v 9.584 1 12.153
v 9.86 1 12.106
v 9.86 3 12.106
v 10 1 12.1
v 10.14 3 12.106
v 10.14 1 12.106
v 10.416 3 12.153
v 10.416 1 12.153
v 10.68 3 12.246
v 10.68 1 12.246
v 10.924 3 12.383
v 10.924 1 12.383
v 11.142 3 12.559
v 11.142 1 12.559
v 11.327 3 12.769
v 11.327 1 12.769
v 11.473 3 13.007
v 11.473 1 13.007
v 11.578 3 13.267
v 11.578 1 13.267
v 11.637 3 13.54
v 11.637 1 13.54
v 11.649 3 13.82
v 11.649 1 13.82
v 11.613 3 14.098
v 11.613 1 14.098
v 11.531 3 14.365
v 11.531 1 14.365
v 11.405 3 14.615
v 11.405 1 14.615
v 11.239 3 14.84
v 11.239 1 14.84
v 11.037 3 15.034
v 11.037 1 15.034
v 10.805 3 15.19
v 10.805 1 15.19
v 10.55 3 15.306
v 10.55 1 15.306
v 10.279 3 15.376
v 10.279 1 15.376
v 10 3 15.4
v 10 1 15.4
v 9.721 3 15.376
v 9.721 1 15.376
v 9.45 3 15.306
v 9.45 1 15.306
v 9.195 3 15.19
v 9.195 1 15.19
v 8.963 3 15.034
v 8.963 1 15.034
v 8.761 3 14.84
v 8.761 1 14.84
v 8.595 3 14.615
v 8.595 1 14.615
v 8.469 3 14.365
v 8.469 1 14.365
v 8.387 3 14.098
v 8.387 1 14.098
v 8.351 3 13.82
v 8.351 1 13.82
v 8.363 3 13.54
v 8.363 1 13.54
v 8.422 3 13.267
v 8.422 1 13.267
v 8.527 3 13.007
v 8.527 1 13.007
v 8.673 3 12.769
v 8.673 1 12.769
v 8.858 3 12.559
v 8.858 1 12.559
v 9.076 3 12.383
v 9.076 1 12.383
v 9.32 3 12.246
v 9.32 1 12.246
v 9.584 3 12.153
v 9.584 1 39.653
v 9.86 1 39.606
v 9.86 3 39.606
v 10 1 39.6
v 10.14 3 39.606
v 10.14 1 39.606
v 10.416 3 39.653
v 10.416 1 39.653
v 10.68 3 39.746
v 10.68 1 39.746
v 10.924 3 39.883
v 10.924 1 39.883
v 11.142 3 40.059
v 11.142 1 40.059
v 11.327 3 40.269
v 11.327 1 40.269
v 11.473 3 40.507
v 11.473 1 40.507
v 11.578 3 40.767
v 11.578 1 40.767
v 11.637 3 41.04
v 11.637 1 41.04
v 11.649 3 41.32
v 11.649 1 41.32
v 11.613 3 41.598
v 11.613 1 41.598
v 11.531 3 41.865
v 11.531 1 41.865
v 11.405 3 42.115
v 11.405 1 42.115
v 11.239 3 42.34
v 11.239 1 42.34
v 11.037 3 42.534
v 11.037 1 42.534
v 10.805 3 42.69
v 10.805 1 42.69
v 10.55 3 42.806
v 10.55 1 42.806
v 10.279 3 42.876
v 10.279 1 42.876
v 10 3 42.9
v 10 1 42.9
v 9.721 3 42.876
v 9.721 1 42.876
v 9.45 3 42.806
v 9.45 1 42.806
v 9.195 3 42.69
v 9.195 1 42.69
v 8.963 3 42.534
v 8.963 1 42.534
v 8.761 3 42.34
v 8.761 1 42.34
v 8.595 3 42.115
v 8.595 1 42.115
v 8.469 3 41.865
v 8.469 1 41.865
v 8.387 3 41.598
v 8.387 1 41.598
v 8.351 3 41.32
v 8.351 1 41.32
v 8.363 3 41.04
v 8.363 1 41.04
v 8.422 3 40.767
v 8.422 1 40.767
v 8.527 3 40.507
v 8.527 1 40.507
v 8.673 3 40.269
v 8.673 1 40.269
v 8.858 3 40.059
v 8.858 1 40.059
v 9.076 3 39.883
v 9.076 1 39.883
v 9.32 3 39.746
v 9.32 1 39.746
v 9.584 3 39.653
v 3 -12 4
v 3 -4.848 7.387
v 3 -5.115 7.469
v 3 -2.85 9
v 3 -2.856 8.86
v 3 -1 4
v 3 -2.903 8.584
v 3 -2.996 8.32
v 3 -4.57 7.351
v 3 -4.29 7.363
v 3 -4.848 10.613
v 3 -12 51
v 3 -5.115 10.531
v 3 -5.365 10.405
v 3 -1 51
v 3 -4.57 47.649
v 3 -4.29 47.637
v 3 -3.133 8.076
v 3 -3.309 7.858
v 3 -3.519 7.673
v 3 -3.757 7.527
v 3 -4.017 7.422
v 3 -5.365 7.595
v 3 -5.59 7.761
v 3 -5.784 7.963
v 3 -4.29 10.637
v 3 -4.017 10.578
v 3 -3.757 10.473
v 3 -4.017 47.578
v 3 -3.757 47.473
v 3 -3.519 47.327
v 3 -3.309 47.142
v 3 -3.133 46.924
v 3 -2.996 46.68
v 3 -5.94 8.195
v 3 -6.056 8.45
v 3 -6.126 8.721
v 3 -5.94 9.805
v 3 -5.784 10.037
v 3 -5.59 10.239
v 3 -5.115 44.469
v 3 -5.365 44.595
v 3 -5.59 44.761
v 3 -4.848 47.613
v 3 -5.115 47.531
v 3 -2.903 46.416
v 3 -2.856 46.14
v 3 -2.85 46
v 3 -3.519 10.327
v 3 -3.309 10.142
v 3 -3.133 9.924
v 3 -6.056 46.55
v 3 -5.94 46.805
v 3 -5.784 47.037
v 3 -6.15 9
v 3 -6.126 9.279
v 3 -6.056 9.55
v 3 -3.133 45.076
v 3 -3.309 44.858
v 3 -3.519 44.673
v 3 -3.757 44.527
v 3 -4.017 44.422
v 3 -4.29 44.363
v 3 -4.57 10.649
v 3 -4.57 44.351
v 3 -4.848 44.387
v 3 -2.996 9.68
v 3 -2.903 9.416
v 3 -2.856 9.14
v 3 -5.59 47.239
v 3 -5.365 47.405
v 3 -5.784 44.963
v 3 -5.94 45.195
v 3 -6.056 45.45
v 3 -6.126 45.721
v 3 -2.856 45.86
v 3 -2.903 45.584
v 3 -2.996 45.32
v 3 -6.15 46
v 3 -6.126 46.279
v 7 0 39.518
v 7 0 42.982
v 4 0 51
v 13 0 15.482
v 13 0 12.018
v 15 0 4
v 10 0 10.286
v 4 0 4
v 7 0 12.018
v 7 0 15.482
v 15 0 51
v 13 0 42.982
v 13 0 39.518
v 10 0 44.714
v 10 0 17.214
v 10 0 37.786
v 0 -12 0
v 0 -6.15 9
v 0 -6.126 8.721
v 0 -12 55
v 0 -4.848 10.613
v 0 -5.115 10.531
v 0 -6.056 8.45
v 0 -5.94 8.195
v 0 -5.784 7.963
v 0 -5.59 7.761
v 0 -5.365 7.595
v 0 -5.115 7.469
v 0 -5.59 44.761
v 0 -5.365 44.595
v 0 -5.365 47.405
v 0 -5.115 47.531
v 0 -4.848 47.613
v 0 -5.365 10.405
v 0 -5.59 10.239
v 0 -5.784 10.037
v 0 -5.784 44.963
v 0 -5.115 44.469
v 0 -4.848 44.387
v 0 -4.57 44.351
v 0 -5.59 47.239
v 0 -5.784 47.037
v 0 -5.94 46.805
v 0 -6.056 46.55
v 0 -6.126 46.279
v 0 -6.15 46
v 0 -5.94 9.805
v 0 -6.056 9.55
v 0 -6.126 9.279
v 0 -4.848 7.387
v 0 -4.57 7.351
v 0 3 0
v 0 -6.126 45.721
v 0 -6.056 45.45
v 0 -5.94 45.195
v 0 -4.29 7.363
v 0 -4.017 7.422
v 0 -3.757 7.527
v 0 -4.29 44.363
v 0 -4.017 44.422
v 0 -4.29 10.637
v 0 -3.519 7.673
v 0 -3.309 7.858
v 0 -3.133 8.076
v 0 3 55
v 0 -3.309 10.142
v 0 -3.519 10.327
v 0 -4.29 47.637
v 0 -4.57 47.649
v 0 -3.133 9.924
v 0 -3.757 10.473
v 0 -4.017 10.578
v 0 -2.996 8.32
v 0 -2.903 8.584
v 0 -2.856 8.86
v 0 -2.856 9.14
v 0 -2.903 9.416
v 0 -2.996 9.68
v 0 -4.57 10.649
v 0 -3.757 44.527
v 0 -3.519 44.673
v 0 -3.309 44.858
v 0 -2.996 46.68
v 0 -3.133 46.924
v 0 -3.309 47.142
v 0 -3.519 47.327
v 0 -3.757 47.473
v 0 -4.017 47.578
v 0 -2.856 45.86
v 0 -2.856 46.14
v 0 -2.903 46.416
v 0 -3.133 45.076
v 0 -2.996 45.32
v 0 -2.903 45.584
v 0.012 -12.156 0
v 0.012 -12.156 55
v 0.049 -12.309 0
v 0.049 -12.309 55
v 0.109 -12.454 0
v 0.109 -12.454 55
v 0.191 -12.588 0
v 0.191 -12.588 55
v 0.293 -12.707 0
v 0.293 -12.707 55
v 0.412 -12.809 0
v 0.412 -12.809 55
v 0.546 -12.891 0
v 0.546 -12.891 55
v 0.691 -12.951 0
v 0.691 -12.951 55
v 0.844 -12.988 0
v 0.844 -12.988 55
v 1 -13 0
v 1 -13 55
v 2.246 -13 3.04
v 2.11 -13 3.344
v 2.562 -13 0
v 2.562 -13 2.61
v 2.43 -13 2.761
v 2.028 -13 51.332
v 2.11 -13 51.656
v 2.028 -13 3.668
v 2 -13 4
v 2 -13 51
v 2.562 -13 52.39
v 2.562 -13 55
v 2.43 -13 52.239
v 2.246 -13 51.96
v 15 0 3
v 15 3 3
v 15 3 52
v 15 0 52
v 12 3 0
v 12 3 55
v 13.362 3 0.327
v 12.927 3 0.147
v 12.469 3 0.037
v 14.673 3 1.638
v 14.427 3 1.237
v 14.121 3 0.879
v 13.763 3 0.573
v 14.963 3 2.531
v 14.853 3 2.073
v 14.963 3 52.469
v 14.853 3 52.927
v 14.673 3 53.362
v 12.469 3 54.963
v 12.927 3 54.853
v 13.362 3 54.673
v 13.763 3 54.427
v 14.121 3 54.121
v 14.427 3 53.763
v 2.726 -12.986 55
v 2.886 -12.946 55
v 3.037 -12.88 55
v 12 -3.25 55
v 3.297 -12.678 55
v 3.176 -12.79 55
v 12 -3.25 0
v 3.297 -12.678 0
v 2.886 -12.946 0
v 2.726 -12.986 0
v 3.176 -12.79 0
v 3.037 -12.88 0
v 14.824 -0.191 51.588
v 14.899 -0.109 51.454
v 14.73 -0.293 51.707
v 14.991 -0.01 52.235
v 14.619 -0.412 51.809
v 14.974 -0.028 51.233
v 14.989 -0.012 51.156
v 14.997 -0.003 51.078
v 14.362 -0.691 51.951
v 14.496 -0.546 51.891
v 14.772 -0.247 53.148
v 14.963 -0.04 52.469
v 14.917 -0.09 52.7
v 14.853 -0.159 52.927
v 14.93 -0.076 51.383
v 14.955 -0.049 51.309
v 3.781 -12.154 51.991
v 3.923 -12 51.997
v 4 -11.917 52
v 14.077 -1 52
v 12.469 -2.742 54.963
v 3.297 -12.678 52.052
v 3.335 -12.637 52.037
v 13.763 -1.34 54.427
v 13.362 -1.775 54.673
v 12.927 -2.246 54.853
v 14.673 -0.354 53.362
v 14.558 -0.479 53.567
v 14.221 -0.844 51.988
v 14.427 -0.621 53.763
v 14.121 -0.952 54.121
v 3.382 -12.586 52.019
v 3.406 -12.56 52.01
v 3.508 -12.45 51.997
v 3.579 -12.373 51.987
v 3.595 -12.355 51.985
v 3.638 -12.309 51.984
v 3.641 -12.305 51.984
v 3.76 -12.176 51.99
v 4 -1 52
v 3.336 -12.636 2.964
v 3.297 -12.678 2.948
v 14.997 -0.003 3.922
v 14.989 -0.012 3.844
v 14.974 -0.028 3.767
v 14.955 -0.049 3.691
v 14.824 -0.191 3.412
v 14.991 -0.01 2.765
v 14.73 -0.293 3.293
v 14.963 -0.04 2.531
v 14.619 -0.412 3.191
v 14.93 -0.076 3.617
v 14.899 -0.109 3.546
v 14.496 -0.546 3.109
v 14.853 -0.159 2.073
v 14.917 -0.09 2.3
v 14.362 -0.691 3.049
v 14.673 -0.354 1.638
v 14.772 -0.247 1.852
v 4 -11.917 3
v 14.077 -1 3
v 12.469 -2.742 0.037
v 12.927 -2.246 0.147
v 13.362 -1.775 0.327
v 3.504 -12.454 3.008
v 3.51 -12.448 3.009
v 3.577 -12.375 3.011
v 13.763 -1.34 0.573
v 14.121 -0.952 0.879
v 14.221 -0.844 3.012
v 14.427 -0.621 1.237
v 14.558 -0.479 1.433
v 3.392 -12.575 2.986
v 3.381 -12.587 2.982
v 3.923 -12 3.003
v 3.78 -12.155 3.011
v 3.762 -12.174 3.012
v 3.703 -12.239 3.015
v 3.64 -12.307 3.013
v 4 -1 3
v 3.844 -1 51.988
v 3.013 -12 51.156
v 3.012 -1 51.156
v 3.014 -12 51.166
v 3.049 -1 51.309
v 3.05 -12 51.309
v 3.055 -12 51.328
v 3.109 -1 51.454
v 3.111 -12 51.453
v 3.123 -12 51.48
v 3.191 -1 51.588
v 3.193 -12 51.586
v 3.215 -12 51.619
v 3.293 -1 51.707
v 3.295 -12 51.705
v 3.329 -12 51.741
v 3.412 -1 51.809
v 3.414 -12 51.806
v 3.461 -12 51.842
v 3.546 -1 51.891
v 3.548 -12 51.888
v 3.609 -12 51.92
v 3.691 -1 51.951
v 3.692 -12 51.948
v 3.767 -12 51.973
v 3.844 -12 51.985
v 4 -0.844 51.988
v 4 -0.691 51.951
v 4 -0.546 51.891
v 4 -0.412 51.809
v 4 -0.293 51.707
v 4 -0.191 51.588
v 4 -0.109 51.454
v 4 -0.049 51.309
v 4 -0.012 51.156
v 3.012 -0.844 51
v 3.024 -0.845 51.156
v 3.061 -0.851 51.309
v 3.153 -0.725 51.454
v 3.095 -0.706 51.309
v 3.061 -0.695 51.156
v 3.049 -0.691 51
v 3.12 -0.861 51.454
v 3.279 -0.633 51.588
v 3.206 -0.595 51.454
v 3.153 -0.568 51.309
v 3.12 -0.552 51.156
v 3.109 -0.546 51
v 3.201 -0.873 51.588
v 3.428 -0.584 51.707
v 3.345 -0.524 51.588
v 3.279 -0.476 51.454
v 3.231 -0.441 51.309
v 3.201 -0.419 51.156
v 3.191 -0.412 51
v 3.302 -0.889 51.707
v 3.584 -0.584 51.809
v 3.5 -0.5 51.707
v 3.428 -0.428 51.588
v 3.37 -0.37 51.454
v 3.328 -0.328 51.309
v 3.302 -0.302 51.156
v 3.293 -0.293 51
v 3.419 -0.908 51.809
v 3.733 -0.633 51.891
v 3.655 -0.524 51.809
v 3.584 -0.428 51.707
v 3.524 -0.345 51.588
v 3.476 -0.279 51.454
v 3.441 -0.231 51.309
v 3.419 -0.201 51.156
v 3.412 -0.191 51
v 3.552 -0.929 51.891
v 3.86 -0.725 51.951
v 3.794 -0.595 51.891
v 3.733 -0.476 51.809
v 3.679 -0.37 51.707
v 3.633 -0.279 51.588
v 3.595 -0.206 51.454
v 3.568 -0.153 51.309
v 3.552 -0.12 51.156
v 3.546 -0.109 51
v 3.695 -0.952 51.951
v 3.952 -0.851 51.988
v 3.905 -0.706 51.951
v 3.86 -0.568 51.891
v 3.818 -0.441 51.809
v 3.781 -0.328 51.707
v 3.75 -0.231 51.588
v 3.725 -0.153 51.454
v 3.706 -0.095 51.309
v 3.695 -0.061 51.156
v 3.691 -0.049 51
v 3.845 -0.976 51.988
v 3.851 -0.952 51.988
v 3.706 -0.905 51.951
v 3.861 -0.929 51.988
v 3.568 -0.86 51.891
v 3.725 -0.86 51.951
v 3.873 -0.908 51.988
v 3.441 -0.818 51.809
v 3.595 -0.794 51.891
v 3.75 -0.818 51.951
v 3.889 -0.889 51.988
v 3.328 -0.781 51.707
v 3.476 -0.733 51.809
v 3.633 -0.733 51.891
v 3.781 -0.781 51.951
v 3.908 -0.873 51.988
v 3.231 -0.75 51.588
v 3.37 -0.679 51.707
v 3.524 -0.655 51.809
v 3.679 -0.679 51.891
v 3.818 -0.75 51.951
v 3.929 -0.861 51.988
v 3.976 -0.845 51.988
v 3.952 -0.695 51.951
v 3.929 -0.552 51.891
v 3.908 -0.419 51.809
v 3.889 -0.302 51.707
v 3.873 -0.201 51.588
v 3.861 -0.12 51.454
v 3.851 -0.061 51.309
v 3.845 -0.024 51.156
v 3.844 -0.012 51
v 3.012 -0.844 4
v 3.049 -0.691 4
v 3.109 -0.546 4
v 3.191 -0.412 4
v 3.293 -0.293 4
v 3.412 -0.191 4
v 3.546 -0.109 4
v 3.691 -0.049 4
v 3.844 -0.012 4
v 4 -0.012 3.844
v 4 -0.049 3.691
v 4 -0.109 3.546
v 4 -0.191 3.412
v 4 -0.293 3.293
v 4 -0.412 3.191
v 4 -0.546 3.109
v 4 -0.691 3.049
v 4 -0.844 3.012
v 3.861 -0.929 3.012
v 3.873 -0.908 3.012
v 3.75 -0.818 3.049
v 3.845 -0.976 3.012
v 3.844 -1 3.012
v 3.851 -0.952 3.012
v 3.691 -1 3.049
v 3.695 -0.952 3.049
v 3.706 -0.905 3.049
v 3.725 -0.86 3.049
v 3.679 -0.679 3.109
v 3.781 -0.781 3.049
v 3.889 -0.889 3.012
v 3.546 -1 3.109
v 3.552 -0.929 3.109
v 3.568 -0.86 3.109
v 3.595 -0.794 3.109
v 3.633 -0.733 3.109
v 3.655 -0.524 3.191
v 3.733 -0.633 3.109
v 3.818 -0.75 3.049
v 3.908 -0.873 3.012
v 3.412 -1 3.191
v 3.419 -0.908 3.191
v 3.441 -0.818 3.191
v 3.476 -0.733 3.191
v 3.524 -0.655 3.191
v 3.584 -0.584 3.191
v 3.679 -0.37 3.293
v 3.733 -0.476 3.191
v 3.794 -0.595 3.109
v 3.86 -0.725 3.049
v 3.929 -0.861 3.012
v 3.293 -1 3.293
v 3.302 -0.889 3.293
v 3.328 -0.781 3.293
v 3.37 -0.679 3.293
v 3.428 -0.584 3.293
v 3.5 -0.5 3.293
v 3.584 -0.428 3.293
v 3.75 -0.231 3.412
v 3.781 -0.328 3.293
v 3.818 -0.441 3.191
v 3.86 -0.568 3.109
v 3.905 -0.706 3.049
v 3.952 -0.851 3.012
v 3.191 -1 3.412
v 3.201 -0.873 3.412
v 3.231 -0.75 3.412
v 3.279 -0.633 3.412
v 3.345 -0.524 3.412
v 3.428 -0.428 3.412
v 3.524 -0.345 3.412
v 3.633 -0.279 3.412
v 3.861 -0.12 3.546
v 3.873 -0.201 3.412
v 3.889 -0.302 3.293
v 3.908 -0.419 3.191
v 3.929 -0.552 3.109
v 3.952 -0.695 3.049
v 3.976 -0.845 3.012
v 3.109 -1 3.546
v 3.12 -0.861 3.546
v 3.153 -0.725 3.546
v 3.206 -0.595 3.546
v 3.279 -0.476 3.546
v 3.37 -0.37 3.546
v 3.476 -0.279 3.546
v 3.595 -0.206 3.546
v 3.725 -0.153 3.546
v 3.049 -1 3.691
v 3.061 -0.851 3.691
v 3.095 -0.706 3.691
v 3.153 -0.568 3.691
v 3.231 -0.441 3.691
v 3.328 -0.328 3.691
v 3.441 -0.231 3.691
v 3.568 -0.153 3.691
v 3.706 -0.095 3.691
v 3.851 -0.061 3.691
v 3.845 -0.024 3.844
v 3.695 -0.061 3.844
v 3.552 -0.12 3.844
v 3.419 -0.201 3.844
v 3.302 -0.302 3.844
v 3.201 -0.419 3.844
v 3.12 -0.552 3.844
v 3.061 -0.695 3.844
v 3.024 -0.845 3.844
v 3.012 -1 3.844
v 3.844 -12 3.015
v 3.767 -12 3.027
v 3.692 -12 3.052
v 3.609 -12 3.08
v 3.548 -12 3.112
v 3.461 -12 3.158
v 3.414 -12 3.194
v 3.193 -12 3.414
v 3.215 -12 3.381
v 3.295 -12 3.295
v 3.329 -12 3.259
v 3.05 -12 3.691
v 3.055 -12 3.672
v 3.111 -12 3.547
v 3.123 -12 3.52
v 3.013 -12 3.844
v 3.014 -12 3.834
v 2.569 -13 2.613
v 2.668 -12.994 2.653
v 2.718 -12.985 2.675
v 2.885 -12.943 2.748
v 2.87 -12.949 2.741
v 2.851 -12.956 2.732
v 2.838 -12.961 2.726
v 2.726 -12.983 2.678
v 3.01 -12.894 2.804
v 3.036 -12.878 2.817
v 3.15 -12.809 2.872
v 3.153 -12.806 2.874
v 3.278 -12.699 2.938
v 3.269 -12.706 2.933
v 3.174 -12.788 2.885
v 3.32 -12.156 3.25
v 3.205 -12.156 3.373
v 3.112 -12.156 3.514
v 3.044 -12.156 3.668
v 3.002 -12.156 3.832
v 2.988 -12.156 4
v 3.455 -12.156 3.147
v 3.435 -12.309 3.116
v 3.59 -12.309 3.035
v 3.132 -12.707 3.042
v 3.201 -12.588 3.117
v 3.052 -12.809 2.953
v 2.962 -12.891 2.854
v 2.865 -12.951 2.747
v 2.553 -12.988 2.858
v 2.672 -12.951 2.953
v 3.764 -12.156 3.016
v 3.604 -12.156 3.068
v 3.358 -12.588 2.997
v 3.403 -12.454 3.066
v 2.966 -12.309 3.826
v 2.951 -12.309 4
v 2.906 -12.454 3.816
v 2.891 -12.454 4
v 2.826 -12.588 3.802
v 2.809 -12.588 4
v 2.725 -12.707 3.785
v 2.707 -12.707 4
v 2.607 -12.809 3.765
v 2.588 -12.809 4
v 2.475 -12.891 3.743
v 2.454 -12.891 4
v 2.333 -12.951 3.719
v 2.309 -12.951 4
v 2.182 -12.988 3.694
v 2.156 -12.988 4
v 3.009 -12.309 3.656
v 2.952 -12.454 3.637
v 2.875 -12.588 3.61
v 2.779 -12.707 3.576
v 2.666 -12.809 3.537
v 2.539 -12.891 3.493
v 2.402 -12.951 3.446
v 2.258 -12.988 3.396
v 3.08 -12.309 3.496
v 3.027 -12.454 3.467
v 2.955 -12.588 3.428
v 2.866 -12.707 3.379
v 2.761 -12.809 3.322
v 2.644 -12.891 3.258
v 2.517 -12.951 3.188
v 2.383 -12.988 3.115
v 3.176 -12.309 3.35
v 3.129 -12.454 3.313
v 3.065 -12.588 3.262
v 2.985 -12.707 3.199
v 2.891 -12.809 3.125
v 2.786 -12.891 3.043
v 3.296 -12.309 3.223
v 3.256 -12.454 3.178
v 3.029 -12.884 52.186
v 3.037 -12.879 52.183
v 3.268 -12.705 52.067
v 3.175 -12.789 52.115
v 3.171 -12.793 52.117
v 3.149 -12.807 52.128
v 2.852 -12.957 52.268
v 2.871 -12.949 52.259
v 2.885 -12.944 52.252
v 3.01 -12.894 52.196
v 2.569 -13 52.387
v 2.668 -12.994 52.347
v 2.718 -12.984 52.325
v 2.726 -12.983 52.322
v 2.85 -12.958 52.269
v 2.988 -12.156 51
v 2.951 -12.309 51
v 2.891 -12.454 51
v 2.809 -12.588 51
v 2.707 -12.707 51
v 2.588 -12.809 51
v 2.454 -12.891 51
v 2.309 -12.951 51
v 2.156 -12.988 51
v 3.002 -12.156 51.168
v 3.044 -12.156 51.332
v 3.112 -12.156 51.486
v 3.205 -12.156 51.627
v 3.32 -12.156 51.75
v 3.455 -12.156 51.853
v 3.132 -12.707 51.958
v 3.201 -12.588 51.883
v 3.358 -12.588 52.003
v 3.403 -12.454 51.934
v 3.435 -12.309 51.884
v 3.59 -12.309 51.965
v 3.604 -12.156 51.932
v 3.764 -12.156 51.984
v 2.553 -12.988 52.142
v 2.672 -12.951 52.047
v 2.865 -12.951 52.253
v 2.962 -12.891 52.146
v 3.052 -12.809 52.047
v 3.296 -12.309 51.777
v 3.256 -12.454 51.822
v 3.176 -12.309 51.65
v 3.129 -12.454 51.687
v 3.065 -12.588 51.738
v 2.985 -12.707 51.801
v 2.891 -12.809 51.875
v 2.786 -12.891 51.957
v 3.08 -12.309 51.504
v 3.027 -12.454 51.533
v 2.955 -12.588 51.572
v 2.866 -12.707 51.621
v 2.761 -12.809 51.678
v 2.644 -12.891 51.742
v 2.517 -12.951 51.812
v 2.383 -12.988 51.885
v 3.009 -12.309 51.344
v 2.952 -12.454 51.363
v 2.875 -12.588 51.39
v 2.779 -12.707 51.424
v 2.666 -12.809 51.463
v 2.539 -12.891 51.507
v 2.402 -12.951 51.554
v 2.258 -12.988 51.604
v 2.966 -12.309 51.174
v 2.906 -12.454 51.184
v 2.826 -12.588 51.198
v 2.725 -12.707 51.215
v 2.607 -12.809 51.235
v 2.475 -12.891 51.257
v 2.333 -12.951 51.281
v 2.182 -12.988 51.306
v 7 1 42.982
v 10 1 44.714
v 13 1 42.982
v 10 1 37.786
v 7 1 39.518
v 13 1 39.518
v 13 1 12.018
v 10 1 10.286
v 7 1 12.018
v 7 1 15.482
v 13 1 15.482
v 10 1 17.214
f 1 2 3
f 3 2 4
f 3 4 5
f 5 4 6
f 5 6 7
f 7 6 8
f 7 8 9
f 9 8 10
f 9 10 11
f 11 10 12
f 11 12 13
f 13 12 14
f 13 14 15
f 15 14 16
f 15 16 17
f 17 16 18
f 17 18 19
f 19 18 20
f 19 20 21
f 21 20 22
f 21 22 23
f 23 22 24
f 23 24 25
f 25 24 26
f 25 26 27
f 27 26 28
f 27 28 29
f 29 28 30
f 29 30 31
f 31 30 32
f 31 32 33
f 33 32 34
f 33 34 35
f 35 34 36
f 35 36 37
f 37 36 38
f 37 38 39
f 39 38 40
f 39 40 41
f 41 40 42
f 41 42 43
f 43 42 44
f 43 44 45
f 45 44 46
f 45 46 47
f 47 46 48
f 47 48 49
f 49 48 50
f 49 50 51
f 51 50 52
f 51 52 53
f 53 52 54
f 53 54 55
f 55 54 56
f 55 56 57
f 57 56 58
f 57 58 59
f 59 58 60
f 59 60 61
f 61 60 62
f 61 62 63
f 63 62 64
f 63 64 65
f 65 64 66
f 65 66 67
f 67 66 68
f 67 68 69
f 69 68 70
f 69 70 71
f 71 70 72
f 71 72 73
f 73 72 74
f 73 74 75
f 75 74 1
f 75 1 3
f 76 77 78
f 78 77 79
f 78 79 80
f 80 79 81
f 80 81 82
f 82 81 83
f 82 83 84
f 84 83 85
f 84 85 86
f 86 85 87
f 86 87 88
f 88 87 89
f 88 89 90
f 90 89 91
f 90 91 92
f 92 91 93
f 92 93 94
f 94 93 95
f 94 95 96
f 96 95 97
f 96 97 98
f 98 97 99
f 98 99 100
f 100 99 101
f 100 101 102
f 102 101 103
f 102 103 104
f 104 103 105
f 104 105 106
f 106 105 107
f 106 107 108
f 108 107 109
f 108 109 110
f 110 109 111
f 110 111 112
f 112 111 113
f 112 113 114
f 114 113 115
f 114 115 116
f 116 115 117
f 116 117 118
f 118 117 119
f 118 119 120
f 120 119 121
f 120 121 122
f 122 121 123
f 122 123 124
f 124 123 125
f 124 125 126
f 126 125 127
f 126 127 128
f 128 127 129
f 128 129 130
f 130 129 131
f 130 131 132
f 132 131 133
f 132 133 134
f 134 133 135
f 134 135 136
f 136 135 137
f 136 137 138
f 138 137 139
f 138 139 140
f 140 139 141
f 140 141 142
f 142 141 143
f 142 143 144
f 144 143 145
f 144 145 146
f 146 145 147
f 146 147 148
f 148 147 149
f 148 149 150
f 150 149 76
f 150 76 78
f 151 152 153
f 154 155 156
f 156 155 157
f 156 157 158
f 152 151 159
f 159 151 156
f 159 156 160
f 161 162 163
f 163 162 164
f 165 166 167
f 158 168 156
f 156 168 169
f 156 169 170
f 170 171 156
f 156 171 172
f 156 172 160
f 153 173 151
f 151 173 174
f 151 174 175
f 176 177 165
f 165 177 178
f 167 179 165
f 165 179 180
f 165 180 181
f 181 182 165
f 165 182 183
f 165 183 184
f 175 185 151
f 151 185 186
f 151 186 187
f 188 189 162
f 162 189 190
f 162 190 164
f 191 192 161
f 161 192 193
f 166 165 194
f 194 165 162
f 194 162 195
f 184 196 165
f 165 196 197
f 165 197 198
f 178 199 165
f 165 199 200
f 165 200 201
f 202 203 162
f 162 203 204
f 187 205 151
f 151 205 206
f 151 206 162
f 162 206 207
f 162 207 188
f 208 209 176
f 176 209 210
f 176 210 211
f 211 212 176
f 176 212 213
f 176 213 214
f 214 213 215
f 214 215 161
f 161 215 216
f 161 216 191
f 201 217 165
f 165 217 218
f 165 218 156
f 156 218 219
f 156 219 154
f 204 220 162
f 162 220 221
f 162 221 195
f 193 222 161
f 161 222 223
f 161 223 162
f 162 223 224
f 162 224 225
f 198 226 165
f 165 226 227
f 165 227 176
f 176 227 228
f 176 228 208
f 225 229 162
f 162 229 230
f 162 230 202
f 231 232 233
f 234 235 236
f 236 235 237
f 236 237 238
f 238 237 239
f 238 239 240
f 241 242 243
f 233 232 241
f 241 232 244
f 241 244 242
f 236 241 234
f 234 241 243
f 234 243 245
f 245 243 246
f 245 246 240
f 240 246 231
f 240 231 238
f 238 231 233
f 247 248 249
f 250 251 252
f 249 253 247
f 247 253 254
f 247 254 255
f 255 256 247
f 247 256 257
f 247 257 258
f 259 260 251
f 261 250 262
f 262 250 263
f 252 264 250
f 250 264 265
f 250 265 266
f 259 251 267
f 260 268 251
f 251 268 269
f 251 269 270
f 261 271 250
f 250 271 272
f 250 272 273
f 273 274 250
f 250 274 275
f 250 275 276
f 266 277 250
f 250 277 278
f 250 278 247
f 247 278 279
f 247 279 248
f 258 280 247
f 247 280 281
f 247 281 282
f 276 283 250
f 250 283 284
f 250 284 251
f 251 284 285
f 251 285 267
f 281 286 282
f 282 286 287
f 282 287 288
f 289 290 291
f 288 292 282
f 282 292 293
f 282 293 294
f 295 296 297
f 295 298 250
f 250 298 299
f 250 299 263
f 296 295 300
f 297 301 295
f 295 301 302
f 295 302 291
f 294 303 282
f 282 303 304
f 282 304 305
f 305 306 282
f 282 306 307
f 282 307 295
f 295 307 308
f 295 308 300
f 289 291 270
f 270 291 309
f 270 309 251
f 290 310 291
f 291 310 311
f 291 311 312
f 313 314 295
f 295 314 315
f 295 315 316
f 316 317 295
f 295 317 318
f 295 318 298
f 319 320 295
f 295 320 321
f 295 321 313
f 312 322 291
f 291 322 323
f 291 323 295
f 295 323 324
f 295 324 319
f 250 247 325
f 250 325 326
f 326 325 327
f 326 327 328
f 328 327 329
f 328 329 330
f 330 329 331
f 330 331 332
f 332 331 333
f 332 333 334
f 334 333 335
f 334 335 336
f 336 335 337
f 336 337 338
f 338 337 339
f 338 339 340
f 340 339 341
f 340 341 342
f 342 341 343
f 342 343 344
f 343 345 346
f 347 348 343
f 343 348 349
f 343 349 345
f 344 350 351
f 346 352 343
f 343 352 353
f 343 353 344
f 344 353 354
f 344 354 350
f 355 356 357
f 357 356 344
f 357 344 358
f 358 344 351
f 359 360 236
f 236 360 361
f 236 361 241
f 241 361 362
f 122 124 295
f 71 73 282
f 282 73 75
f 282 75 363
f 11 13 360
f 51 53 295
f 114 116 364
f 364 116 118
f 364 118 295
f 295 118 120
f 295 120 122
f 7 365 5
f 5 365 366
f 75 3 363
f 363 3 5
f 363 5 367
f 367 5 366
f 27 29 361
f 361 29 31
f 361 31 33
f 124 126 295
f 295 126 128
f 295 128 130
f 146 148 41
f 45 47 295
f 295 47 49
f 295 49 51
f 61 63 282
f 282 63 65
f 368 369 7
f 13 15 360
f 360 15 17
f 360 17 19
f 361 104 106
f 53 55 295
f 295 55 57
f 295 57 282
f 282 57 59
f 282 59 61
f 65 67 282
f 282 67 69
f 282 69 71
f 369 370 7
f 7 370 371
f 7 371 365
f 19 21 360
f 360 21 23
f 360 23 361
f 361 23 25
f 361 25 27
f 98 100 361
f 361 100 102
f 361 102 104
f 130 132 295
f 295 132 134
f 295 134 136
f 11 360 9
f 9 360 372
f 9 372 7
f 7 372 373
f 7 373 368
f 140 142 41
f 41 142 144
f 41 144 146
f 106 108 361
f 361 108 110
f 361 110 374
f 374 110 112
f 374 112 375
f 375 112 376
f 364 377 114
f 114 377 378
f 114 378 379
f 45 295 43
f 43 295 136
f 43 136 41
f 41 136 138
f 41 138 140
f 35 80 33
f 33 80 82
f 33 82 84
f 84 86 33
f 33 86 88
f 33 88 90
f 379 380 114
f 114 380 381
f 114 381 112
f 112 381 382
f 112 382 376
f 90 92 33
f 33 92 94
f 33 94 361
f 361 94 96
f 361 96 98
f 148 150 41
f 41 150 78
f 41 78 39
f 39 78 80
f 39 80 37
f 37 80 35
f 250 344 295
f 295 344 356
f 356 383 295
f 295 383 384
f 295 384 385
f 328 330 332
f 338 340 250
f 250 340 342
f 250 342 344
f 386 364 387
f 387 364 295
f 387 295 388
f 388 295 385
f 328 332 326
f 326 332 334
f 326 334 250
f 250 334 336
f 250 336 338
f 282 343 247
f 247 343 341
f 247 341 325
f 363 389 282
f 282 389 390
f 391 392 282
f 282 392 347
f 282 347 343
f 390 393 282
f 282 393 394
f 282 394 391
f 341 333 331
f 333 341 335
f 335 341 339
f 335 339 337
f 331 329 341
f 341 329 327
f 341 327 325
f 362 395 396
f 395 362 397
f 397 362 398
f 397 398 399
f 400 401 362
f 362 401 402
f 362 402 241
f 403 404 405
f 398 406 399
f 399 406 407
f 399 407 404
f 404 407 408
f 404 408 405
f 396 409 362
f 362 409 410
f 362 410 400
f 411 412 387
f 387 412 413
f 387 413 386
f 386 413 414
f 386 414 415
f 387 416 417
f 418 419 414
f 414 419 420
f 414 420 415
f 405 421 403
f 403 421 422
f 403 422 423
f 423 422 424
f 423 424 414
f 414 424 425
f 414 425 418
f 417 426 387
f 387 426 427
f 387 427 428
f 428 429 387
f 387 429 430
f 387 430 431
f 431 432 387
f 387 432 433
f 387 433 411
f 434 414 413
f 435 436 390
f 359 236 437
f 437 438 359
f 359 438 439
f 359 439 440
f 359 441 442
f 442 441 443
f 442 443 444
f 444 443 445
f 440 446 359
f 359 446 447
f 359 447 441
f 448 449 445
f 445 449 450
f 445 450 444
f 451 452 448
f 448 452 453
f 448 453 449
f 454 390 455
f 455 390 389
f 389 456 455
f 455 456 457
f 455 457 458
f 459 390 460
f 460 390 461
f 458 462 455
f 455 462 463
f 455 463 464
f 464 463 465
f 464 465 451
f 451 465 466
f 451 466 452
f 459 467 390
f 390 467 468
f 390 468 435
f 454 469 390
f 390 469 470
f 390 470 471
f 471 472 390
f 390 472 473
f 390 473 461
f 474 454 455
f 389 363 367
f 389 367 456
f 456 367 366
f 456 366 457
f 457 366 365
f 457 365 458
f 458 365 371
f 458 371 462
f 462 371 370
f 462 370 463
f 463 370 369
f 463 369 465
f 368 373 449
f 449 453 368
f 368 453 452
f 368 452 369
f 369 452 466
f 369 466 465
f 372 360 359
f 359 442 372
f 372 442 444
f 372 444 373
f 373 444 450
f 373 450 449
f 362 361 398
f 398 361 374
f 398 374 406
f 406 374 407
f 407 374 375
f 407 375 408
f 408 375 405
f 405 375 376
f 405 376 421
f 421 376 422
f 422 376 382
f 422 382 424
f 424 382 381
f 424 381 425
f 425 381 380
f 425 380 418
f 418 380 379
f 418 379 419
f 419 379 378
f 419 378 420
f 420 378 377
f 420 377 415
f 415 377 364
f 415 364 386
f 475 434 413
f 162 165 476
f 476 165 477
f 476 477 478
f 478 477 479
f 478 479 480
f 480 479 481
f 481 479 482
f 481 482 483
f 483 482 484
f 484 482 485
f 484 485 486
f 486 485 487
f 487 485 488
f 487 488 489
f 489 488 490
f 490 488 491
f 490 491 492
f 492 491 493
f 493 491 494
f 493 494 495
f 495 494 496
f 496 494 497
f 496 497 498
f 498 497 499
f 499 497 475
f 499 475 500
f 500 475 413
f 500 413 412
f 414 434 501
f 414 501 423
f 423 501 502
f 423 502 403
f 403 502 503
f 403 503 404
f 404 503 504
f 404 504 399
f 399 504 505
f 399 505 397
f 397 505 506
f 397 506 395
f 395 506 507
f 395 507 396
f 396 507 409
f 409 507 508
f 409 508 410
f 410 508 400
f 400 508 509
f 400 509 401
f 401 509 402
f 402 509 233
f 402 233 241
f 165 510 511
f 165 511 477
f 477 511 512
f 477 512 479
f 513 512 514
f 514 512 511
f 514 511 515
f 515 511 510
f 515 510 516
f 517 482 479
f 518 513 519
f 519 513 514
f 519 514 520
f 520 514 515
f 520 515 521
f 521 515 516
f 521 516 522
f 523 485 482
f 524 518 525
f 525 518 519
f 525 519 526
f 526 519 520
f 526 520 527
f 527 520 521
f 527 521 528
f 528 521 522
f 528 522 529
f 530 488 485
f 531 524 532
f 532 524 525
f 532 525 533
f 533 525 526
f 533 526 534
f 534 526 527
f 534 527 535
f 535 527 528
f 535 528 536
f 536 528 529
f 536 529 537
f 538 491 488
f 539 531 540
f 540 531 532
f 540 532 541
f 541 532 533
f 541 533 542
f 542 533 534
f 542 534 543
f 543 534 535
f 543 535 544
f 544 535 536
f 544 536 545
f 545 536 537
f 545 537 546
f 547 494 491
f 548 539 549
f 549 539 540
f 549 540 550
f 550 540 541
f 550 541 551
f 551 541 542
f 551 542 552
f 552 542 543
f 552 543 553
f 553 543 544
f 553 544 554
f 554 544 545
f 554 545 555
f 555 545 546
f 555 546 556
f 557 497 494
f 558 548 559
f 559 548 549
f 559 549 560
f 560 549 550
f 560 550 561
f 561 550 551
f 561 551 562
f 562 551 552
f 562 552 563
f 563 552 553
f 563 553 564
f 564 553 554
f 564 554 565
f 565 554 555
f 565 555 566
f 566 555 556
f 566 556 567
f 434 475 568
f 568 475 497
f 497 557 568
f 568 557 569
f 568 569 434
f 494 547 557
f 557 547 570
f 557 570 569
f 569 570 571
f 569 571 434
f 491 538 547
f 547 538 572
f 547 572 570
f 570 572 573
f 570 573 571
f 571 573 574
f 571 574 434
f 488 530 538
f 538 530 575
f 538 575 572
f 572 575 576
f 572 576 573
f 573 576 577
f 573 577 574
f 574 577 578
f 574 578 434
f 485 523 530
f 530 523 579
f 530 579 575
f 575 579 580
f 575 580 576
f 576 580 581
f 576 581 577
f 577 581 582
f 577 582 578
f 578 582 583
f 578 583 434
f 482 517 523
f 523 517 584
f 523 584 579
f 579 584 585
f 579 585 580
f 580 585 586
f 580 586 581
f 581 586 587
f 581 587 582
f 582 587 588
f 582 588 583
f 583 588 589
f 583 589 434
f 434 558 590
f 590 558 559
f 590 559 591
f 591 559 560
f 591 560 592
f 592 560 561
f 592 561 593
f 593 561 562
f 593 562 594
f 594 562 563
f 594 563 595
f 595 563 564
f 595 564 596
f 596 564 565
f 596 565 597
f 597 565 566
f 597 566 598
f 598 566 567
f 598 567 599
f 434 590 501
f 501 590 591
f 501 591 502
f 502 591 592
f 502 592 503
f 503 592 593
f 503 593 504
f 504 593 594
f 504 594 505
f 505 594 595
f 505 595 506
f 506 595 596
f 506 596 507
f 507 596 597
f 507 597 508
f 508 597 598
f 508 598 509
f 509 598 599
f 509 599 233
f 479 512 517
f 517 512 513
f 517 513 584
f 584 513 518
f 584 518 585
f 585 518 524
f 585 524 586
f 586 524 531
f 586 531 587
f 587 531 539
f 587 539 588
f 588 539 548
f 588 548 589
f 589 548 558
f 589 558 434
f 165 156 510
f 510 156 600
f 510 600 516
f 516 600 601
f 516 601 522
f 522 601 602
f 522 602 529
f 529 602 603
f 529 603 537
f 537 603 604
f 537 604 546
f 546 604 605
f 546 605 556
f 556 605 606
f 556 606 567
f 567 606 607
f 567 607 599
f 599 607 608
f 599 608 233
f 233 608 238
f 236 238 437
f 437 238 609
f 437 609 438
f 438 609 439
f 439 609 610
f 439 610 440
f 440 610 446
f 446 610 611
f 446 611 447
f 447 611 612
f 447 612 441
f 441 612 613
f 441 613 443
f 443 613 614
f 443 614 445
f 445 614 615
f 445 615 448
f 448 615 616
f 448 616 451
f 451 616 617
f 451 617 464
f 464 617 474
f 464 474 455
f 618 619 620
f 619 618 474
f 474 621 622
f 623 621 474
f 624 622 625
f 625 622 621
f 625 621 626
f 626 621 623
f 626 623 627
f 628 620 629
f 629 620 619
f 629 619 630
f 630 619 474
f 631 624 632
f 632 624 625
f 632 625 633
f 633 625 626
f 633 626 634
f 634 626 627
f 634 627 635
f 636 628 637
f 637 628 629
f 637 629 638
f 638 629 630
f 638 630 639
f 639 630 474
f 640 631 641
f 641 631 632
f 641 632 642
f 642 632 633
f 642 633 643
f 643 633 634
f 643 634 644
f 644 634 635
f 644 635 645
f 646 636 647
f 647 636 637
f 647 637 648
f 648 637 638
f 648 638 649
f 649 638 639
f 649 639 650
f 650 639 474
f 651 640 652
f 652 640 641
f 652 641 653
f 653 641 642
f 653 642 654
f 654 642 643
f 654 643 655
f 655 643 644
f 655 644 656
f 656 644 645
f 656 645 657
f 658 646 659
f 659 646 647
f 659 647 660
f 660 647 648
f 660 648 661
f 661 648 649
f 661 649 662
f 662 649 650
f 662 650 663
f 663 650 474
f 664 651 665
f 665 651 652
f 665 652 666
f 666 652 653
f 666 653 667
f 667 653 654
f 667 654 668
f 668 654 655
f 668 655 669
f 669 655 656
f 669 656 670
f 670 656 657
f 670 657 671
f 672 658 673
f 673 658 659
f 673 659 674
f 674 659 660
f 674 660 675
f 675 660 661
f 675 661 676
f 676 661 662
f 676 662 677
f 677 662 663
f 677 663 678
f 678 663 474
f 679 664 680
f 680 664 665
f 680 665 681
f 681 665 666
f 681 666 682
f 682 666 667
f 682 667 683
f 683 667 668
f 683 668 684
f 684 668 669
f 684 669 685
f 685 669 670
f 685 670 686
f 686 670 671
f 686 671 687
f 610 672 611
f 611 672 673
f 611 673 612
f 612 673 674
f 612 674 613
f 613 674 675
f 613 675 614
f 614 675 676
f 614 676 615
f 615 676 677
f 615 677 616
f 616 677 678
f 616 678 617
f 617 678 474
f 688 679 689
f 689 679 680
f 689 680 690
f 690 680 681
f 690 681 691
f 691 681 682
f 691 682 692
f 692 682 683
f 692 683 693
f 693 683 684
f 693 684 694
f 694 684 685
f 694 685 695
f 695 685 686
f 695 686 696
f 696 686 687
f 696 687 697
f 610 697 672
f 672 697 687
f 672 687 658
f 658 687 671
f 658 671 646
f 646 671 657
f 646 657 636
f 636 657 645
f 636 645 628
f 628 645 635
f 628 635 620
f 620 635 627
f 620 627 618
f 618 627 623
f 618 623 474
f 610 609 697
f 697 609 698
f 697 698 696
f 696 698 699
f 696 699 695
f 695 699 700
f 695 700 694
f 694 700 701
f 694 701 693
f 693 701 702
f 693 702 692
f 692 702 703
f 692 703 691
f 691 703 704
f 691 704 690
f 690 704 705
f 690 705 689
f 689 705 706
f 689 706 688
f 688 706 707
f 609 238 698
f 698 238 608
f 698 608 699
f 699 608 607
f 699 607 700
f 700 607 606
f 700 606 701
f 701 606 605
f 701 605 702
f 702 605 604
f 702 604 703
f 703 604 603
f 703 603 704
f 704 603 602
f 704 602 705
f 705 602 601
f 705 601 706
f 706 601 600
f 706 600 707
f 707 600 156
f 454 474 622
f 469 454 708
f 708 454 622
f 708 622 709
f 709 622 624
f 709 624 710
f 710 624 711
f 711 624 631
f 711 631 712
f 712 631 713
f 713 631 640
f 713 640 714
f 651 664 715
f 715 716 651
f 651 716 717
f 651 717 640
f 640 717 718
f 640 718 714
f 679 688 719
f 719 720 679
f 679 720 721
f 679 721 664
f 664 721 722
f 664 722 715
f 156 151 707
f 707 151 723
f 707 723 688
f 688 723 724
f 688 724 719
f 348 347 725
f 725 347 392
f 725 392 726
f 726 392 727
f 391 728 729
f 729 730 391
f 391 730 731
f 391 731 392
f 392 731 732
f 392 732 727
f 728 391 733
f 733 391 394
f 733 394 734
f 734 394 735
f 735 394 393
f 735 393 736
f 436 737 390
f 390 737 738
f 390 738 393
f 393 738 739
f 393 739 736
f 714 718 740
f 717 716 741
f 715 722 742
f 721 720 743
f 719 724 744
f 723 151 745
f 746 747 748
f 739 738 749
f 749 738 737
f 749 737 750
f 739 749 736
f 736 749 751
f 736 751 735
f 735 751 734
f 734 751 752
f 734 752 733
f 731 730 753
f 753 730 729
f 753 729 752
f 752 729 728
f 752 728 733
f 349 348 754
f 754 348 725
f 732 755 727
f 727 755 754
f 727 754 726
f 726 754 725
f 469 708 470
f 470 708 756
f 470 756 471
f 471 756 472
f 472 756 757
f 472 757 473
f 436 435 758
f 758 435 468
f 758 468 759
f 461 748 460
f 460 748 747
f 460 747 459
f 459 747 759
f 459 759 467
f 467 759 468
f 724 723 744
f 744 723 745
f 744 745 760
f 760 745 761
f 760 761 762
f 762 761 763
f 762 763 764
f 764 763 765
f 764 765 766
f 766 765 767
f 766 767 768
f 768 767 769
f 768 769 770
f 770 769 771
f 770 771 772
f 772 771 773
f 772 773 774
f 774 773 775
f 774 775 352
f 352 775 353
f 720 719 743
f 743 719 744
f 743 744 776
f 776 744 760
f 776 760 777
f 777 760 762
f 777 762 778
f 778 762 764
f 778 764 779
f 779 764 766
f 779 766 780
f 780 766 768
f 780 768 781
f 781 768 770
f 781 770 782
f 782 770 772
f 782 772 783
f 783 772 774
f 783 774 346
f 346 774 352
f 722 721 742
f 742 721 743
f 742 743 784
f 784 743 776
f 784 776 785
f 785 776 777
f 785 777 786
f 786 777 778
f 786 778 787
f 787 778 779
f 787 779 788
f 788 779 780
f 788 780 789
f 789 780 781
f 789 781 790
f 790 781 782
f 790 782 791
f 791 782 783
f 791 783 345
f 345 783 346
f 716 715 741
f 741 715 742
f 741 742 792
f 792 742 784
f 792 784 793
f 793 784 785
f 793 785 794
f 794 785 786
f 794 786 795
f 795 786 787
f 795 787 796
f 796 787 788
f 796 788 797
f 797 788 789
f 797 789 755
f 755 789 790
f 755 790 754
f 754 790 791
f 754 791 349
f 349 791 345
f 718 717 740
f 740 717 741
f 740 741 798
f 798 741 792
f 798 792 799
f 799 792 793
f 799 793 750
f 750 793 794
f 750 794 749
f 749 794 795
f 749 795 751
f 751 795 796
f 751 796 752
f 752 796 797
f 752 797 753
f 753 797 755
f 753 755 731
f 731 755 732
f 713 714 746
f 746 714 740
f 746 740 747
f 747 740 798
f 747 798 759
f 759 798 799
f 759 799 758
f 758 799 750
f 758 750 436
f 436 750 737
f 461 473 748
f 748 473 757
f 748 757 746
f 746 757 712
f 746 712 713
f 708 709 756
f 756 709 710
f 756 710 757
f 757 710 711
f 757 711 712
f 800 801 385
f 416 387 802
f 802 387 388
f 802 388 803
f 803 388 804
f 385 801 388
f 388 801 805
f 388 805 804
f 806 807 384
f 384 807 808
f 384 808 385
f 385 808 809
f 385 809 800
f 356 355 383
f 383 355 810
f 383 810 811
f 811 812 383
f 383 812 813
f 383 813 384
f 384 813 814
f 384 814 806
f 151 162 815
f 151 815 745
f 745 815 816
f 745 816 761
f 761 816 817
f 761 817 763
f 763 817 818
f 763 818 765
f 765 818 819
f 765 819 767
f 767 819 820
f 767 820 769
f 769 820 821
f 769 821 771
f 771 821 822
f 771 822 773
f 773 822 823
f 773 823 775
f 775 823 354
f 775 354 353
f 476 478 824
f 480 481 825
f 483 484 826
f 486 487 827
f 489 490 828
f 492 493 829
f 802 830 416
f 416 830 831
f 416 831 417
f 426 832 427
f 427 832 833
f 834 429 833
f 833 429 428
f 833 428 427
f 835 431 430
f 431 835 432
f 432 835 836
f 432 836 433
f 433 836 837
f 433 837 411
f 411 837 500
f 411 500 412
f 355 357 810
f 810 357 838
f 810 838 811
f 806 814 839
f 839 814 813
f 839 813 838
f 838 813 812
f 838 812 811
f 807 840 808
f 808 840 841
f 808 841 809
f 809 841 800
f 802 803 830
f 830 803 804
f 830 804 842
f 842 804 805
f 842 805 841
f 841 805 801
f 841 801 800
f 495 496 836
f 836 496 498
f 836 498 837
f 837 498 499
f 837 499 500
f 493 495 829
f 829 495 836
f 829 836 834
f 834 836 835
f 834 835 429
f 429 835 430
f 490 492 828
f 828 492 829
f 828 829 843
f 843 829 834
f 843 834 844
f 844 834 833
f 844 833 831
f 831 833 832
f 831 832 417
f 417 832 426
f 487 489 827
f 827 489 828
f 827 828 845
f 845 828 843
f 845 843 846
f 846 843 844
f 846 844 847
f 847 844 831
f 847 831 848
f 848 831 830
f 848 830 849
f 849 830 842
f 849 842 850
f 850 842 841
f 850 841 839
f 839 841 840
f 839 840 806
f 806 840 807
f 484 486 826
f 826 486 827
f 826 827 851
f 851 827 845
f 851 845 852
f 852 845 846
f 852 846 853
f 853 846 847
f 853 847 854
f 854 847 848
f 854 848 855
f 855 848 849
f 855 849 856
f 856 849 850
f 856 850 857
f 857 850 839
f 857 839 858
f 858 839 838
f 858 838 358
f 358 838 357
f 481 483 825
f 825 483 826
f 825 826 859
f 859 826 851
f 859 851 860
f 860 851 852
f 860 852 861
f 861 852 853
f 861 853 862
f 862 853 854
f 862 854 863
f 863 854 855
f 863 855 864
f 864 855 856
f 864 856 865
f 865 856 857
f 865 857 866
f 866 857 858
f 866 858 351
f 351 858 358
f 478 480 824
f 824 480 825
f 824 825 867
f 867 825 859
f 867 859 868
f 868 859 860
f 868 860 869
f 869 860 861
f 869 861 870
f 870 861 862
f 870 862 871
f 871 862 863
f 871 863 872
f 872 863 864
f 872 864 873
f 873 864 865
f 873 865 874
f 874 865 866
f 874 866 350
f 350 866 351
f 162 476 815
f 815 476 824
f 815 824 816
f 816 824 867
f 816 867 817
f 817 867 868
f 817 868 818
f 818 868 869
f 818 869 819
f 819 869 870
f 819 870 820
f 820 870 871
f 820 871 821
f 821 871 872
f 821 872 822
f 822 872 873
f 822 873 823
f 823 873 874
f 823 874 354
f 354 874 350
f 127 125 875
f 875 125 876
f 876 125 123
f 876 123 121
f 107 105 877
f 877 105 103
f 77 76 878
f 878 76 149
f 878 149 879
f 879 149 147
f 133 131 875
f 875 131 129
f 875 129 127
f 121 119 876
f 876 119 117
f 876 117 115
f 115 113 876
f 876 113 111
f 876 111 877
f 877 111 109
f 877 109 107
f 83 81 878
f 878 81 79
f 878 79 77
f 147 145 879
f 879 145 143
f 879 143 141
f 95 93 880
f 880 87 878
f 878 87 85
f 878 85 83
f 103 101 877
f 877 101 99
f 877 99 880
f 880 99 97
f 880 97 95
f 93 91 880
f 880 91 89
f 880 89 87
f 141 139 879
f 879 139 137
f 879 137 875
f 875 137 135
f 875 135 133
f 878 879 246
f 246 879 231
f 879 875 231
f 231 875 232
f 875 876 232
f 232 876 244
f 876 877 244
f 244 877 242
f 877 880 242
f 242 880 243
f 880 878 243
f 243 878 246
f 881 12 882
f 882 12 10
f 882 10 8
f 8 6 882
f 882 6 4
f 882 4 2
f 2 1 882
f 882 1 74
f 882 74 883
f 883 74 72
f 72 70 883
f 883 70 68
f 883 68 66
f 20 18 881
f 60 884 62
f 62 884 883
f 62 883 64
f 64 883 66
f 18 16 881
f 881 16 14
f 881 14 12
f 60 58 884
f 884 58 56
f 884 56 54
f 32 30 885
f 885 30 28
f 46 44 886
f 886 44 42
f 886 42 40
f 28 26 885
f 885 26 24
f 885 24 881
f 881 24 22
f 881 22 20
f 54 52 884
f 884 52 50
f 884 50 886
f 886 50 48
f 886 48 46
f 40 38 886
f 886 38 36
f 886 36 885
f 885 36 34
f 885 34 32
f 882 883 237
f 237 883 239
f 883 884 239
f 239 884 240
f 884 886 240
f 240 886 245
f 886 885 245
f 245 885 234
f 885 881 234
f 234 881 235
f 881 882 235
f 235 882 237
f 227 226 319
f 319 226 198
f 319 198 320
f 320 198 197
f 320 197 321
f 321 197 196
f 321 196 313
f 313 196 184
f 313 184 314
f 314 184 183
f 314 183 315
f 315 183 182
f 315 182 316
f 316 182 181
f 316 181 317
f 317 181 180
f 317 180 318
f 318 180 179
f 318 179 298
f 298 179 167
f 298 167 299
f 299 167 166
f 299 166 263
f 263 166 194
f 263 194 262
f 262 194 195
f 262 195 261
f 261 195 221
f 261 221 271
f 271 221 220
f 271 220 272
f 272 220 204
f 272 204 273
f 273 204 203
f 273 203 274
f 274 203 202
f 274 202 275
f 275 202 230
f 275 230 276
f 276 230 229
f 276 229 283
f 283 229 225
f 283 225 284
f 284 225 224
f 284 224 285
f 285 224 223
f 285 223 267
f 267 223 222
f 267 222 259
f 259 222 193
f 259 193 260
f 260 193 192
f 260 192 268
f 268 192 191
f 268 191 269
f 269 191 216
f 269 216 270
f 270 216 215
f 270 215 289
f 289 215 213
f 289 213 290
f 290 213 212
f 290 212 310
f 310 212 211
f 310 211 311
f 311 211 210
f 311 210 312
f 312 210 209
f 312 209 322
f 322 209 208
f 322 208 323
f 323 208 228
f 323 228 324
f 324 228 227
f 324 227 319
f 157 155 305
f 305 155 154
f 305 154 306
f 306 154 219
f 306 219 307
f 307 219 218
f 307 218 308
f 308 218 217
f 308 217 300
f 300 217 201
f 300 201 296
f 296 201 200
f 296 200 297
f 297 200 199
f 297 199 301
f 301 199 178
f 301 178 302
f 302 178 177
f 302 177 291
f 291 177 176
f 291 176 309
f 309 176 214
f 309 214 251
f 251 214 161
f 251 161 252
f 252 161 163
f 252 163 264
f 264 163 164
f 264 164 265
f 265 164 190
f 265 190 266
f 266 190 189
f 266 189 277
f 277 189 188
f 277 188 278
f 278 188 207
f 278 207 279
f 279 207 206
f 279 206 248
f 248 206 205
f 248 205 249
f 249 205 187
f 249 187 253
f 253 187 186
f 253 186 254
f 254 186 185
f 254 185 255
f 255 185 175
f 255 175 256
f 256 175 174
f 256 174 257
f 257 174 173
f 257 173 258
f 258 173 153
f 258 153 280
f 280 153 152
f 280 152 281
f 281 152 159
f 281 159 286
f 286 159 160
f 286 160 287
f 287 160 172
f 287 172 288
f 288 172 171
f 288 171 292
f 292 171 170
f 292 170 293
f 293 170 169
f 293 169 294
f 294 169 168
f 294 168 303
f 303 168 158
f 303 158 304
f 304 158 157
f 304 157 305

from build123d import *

# Parameters (mm, degrees)
ESQUISSE2_W             = 15
ESQUISSE2_H             = 3
BOSS_EXTRU_1_DEPTH      = 55
BOSS_EXTRU_2_DEPTH      = 3
BOSS_EXTRU_3_DEPTH      = 3
CONG_1_R                = 3
CONG_2_R                = 1
CONG_3_START            = 4
CONG_3_3_DEPTH          = 47
CONG_3_START_2          = -1
CONG_3_4_DEPTH          = 57
ENL_V_MAT_EXTRU_1_REACH = 61.211
ESQUISSE5_R             = 1.65
ENL_V_MAT_EXTRU_2_DEPTH = 1
ESQUISSE8_R             = 1.65
ENL_V_MAT_EXTRU_3_DEPTH = 59.472215766


with BuildPart() as part:
    # Esquisse2 → Boss.-Extru.1 (new body)
    with BuildSketch(Plane.XY):
        with BuildLine():
            Line((3, 0), (0, 0))
            Line((0, 0), (0, -12))
            ThreePointArc((0, -12), (0.292893219, -12.707106781), (1, -13))
            Line((1, -13), (3, -13))
            Line((3, -13), (3, 0))
        make_face()
        with Locations((7.5, 1.5)):
            Rectangle(ESQUISSE2_W, ESQUISSE2_H)
    extrude(amount=BOSS_EXTRU_1_DEPTH)

    # Esquisse3 → Boss.-Extru.2 (add)
    with BuildSketch(Plane(origin=(3, 0, 55), x_dir=(-1, 0, 0), z_dir=(0, 0, -1))):
        Polygon((-12, 0), (0, -13), (0, 0), align=None)
    extrude(amount=BOSS_EXTRU_2_DEPTH)

    # Esquisse4 → Boss.-Extru.3 (add)
    with BuildSketch(Plane(origin=(3, 0, 0), x_dir=(-1, 0, 0), z_dir=(0, 0, -1))):
        Polygon((0, 0), (-12, 0), (0, -13), align=None)
    extrude(amount=-BOSS_EXTRU_3_DEPTH)

    # Congé1
    cong_1_edges = [part.edges().sort_by_distance(p)[0] for p in [
        (15, 1.5, 0),
        (15, 1.5, 55),
    ]]
    fillet(cong_1_edges, radius=CONG_1_R)

    # Congé2
    # the kernel refuses this fillet: 1 mm, written as the material it adds along each edge
    with BuildSketch(Plane(origin=(4, -1, 4), x_dir=(0, 1, 0), z_dir=(-1, 0, 0))) as cong_2_piece_1_section:
        Polygon((0, 0), (CONG_2_R, 0), (CONG_2_R, CONG_2_R), (0, CONG_2_R), align=None)
    cong_2_piece_1 = extrude(amount=CONG_2_R, mode=Mode.PRIVATE)
    cong_2_piece_1 = cong_2_piece_1 - Plane(origin=(4, -1, 4), x_dir=(0, -0.7071067811865475, 0.7071067811865475), z_dir=(-1, 0, 0)) * Sphere(CONG_2_R, mode=Mode.PRIVATE)
    add(cong_2_piece_1)
    with BuildSketch(Plane(origin=(4, -1, 51), x_dir=(0, 1, 0), z_dir=(-1, 0, 0))) as cong_2_piece_2_section:
        Polygon((0, 0), (CONG_2_R, 0), (CONG_2_R, -CONG_2_R), (0, -CONG_2_R), align=None)
    cong_2_piece_2 = extrude(amount=CONG_2_R, mode=Mode.PRIVATE)
    cong_2_piece_2 = cong_2_piece_2 - Plane(origin=(4, -1, 51), x_dir=(0, -0.7071067811865475, -0.7071067811865475), z_dir=(-1, 0, 0)) * Sphere(CONG_2_R, mode=Mode.PRIVATE)
    add(cong_2_piece_2)
    with BuildSketch(Plane(origin=(3, 0, 4), x_dir=(0, -1, 0), z_dir=(0, 0, 1))) as cong_2_piece_3:
        with BuildLine():
            CenterArc((CONG_2_R, CONG_2_R), CONG_2_R, 180, 90)
            Line((0, CONG_2_R), (0, 0))
            Line((0, 0), (CONG_2_R, 0))
        make_face()
    extrude(amount=47)
    with BuildSketch(Plane(origin=(4, 0, 52), x_dir=(0, 0, -1), z_dir=(1, 0, 0))) as cong_2_piece_4_section:
        with BuildLine():
            CenterArc((CONG_2_R, -CONG_2_R), CONG_2_R, 90, 90)
            Line((0, -CONG_2_R), (0, 0))
            Line((0, 0), (CONG_2_R, 0))
        make_face()
    cong_2_piece_4 = extrude(amount=11, mode=Mode.PRIVATE)
    cong_2_piece_4 = split(cong_2_piece_4, bisect_by=Plane(origin=(9.939297125, -5.482428115, 52), z_dir=(-0.7348034446274879, 0.6782801027330657, 0)), keep=Keep.TOP, mode=Mode.PRIVATE)
    add(cong_2_piece_4)
    with BuildSketch(Plane(origin=(3, -13, 52), x_dir=(0, 0, -1), z_dir=(0, 1, 0))) as cong_2_piece_5_section:
        with BuildLine():
            CenterArc((CONG_2_R, -CONG_2_R), CONG_2_R, 90, 90)
            Line((0, -CONG_2_R), (0, 0))
            Line((0, 0), (CONG_2_R, 0))
        make_face()
    cong_2_piece_5 = extrude(amount=12, mode=Mode.PRIVATE)
    cong_2_piece_5 = split(cong_2_piece_5, bisect_by=Plane(origin=(3, -13, 52), z_dir=(-0.7348034446274879, 0.6782801027330657, 0)), keep=Keep.TOP, mode=Mode.PRIVATE)
    add(cong_2_piece_5)
    with BuildSketch(Plane(origin=(3, -13, 3), x_dir=(1, 0, 0), z_dir=(0, 1, 0))) as cong_2_piece_6_section:
        with BuildLine():
            CenterArc((CONG_2_R, -CONG_2_R), CONG_2_R, 90, 90)
            Line((0, -CONG_2_R), (0, 0))
            Line((0, 0), (CONG_2_R, 0))
        make_face()
    cong_2_piece_6 = extrude(amount=12, mode=Mode.PRIVATE)
    cong_2_piece_6 = split(cong_2_piece_6, bisect_by=Plane(origin=(3, -13, 3), z_dir=(-0.7348034446274879, 0.6782801027330657, 0)), keep=Keep.TOP, mode=Mode.PRIVATE)
    add(cong_2_piece_6)
    with BuildSketch(Plane(origin=(4, 0, 3), x_dir=(0, -1, 0), z_dir=(1, 0, 0))) as cong_2_piece_7_section:
        with BuildLine():
            CenterArc((CONG_2_R, -CONG_2_R), CONG_2_R, 90, 90)
            Line((0, -CONG_2_R), (0, 0))
            Line((0, 0), (CONG_2_R, 0))
        make_face()
    cong_2_piece_7 = extrude(amount=11, mode=Mode.PRIVATE)
    cong_2_piece_7 = split(cong_2_piece_7, bisect_by=Plane(origin=(9.939297125, -5.482428115, 3), z_dir=(-0.7348034446274879, 0.6782801027330657, 0)), keep=Keep.TOP, mode=Mode.PRIVATE)
    add(cong_2_piece_7)

    # Congé3: read off the stored shape, not the designer's step
    # Congé3 outline → Congé3 (revolve, cut)
    with BuildSketch(Plane(origin=(4, 0, 51), x_dir=(1, 0, 0), z_dir=(0, 0, 1))):
        with BuildLine():
            ThreePointArc((2, -13), (1.292893219, -12.707106781), (1, -12))
            Line((1, -12), (1, -13))
            Line((1, -13), (2, -13))
        make_face()
    revolve(axis=Axis((4, 0, 51), (0, 1, 0)), mode=Mode.SUBTRACT)

    # Cong_3 2 outline → Cong_3 2 (revolve, cut)
    with BuildSketch(Plane(origin=(4, 0, 4), x_dir=(1, 0, 0), z_dir=(0, 0, 1))):
        with BuildLine():
            ThreePointArc((2, -13), (1.292893219, -12.707106781), (1, -12))
            Line((1, -12), (1, -13))
            Line((1, -13), (2, -13))
        make_face()
    revolve(axis=Axis((4, 0, 4), (0, 1, 0)), mode=Mode.SUBTRACT)

    # Cong_3 3 outline → Cong_3 3 (cut)
    with BuildSketch(Plane.XY.offset(CONG_3_START)):
        with BuildLine():
            Line((2, -13), (3, -13))
            Line((3, -13), (3, -12))
            ThreePointArc((3, -12), (2.707106781, -12.707106781), (2, -13))
        make_face()
    extrude(amount=CONG_3_3_DEPTH, mode=Mode.SUBTRACT)

    # Cong_3 4 outline → Cong_3 4 (cut)
    with BuildSketch(Plane.XY.offset(CONG_3_START_2)):
        with BuildLine():
            Line((2.562168768, -13), (3, -13))
            Line((3, -13), (3.296972213, -12.678280103))
            ThreePointArc((3.296972213, -12.678280103), (2.963242263, -12.916045878), (2.562168768, -13))
        make_face()
    extrude(amount=CONG_3_4_DEPTH, mode=Mode.SUBTRACT)

    # Esquisse5 → Enlèv. mat.-Extru.1 (cut, up to next)
    with BuildSketch(Plane(origin=(0, 3, 0), x_dir=(1, 0, 0), z_dir=(0, 1, 0)), mode=Mode.PRIVATE) as enl_v_mat_extru_1_sk1:
        with Locations(Location((10, -41.25, 0), (0, 0, 270))):
            Circle(ESQUISSE5_R)
    enl_v_mat_extru_1_tool1 = extrude(enl_v_mat_extru_1_sk1.sketch, amount=-ENL_V_MAT_EXTRU_1_REACH, mode=Mode.PRIVATE) & part.part
    # Esquisse5 → Enlèv. mat.-Extru.1 (cut, up to next)
    with BuildSketch(Plane(origin=(0, 3, 0), x_dir=(1, 0, 0), z_dir=(0, 1, 0)), mode=Mode.PRIVATE) as enl_v_mat_extru_1_sk2:
        with Locations(Location((10, -13.75, 0), (0, 0, 270))):
            Circle(ESQUISSE5_R)
    enl_v_mat_extru_1_tool2 = extrude(enl_v_mat_extru_1_sk2.sketch, amount=-ENL_V_MAT_EXTRU_1_REACH, mode=Mode.PRIVATE) & part.part
    add(enl_v_mat_extru_1_tool1.solids().sort_by_distance((10, 3, 41.25))[0], mode=Mode.SUBTRACT)
    add(enl_v_mat_extru_1_tool2.solids().sort_by_distance((10, 3, 13.75))[0], mode=Mode.SUBTRACT)

    # Esquisse7 → Enlèv. mat.-Extru.2 (cut)
    with BuildSketch(Plane(origin=(0, 0, 0), x_dir=(-1, 0, 0), z_dir=(0, -1, 0))):
        Polygon((-10, -37.785898385), (-13, -39.517949192), (-13, -42.982050808), (-10, -44.714101615), (-7, -42.982050808), (-7, -39.517949192), align=None)
        Polygon((-10, -10.285898385), (-13, -12.017949192), (-13, -15.482050808), (-10, -17.214101615), (-7, -15.482050808), (-7, -12.017949192), align=None)
    extrude(amount=-ENL_V_MAT_EXTRU_2_DEPTH, mode=Mode.SUBTRACT)

    # Esquisse8 → Enlèv. mat.-Extru.3 (cut, through all)
    with BuildSketch(Plane.ZY):
        with Locations(Location((46, -4.5, 0), (0, 0, 270))):
            Circle(ESQUISSE8_R)
        with Locations(Location((9, -4.5, 0), (0, 0, 270))):
            Circle(ESQUISSE8_R)
    extrude(amount=-ENL_V_MAT_EXTRU_3_DEPTH, mode=Mode.SUBTRACT)


solid = part.part
